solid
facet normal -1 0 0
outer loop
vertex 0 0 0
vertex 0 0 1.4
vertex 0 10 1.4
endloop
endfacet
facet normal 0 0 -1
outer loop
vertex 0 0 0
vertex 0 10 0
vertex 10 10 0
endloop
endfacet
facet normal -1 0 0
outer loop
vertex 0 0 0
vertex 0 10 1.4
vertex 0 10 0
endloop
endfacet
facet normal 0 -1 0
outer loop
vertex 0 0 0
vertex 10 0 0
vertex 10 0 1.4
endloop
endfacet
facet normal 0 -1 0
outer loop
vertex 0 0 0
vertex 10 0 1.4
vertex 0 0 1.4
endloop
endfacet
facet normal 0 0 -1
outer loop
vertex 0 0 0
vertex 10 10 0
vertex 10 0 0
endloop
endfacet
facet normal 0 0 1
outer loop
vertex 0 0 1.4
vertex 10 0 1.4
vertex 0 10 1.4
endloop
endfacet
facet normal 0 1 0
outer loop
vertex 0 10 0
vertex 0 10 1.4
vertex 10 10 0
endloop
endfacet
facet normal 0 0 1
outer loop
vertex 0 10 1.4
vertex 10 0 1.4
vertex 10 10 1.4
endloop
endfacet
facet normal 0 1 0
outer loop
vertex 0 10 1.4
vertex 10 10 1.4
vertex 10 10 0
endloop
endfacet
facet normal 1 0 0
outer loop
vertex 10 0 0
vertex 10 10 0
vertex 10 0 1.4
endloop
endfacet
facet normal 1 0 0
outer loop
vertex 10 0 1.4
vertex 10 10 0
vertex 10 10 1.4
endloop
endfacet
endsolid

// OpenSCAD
/* Warning, this is a very basic generator with a lot of approximation 
input data : [LFBGA, AAB, 10x10x1.4mm, 121, , A, C04-21117A]
generated by com.zoubworld.electronics.cad.model3d.Basic
Date : Sun Feb 15 10:50:49 CET 2026
*/

//body
color("black")
translate([0,0,0])
cube([10.0,10.0,1.4], center=false);
